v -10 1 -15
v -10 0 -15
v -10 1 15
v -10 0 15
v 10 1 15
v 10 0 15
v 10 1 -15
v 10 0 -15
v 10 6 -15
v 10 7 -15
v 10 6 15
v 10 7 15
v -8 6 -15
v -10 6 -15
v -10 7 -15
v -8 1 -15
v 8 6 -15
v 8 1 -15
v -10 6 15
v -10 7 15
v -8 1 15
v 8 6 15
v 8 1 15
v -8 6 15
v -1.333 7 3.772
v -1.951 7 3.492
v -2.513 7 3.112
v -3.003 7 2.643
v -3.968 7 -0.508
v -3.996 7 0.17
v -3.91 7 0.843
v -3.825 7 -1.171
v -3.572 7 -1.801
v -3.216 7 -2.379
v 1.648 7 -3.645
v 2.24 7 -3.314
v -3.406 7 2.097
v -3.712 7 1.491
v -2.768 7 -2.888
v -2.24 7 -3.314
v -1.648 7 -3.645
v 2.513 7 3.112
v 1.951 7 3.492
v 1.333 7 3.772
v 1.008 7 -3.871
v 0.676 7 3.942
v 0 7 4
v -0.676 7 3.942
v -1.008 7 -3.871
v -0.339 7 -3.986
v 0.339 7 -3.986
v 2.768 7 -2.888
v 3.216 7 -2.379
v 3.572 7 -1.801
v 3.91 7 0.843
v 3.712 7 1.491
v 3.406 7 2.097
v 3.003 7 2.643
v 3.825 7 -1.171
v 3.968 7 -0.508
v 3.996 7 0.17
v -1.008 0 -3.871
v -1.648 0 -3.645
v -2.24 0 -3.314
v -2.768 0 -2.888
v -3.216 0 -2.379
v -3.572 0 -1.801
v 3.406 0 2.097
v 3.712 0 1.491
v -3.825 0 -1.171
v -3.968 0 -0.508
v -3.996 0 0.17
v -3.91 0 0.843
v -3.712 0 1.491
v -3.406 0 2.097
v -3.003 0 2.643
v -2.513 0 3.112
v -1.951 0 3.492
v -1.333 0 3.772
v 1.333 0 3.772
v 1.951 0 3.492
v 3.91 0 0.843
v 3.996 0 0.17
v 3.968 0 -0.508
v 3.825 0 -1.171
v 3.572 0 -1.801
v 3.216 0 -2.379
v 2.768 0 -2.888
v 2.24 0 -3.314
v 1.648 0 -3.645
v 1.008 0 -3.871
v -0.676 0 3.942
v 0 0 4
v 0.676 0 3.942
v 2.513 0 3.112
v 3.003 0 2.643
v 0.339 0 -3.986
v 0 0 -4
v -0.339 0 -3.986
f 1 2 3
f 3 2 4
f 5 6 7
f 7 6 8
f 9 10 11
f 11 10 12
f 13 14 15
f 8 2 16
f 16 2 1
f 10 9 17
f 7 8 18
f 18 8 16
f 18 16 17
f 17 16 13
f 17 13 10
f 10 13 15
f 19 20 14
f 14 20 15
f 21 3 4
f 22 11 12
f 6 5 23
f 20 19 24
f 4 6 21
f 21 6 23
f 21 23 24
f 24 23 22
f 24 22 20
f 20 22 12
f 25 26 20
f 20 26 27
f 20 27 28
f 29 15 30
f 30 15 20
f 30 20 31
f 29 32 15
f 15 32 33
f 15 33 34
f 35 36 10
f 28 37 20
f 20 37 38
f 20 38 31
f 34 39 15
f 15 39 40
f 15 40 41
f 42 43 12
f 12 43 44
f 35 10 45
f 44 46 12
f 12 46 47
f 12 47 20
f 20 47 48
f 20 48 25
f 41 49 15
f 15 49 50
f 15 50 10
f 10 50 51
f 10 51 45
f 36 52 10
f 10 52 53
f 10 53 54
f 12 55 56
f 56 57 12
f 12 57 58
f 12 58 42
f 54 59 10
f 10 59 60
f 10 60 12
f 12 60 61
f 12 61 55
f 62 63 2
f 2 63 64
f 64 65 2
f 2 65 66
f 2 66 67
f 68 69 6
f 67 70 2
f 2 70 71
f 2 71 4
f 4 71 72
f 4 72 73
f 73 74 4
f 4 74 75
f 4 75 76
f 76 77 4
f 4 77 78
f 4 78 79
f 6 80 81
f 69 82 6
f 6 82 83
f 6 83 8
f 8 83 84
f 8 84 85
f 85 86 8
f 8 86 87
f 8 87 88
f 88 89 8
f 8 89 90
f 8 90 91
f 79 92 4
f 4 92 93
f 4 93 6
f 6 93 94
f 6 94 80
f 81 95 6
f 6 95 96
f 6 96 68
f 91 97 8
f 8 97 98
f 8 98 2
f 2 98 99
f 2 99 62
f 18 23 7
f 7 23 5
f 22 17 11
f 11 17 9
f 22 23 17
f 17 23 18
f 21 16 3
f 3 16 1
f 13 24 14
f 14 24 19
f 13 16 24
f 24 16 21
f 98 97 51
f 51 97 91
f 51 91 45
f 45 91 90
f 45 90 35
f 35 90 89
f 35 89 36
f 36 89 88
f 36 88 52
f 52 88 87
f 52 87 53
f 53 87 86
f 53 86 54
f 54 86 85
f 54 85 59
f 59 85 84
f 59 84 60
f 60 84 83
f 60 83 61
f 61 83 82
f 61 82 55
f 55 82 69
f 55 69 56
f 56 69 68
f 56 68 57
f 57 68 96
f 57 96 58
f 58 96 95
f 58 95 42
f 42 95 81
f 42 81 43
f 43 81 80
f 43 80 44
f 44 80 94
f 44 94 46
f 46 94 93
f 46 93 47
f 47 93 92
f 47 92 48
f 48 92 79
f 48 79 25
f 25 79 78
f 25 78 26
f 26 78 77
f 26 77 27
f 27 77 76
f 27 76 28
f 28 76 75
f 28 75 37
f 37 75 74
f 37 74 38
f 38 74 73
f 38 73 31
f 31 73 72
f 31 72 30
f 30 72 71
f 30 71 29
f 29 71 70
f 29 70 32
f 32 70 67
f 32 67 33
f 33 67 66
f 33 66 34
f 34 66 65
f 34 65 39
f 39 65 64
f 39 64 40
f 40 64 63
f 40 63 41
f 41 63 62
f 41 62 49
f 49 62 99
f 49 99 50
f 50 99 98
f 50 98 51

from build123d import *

# Parameters (mm, degrees)
SKETCH1_W           = 20
SKETCH1_H           = 30
BOSS_EXTRUDE1_DEPTH = 7
SKETCH2_W           = 30
SKETCH2_H           = 5
CUT_EXTRUDE1_DEPTH  = 2
SKETCH3_W           = 30
SKETCH3_H           = 5
CUT_EXTRUDE2_DEPTH  = 2
SKETCH4_R           = 4
CUT_EXTRUDE3_DEPTH  = 10


with BuildPart() as part:
    # Sketch1 → Boss-Extrude1 (new body)
    with BuildSketch(Plane(origin=(0, 0, 0), x_dir=(1, 0, 0), z_dir=(0, 1, 0))):
        Rectangle(SKETCH1_W, SKETCH1_H)
    extrude(amount=BOSS_EXTRUDE1_DEPTH)

    # Sketch2 → Cut-Extrude1 (cut)
    with BuildSketch(Plane(origin=(10, 0, 0), x_dir=(0, 0, -1), z_dir=(1, 0, 0))):
        with Locations((0, 3.5)):
            Rectangle(SKETCH2_W, SKETCH2_H)
    extrude(amount=-CUT_EXTRUDE1_DEPTH, mode=Mode.SUBTRACT)

    # Sketch3 → Cut-Extrude2 (cut)
    with BuildSketch(Plane.ZY.offset(10)):
        with Locations((0, 3.5)):
            Rectangle(SKETCH3_W, SKETCH3_H)
    extrude(amount=-CUT_EXTRUDE2_DEPTH, mode=Mode.SUBTRACT)

    # Sketch4 → Cut-Extrude3 (cut)
    with BuildSketch(Plane(origin=(0, 7, 0), x_dir=(1, 0, 0), z_dir=(0, 1, 0))):
        Circle(SKETCH4_R)
    extrude(amount=-CUT_EXTRUDE3_DEPTH, mode=Mode.SUBTRACT)


solid = part.part
